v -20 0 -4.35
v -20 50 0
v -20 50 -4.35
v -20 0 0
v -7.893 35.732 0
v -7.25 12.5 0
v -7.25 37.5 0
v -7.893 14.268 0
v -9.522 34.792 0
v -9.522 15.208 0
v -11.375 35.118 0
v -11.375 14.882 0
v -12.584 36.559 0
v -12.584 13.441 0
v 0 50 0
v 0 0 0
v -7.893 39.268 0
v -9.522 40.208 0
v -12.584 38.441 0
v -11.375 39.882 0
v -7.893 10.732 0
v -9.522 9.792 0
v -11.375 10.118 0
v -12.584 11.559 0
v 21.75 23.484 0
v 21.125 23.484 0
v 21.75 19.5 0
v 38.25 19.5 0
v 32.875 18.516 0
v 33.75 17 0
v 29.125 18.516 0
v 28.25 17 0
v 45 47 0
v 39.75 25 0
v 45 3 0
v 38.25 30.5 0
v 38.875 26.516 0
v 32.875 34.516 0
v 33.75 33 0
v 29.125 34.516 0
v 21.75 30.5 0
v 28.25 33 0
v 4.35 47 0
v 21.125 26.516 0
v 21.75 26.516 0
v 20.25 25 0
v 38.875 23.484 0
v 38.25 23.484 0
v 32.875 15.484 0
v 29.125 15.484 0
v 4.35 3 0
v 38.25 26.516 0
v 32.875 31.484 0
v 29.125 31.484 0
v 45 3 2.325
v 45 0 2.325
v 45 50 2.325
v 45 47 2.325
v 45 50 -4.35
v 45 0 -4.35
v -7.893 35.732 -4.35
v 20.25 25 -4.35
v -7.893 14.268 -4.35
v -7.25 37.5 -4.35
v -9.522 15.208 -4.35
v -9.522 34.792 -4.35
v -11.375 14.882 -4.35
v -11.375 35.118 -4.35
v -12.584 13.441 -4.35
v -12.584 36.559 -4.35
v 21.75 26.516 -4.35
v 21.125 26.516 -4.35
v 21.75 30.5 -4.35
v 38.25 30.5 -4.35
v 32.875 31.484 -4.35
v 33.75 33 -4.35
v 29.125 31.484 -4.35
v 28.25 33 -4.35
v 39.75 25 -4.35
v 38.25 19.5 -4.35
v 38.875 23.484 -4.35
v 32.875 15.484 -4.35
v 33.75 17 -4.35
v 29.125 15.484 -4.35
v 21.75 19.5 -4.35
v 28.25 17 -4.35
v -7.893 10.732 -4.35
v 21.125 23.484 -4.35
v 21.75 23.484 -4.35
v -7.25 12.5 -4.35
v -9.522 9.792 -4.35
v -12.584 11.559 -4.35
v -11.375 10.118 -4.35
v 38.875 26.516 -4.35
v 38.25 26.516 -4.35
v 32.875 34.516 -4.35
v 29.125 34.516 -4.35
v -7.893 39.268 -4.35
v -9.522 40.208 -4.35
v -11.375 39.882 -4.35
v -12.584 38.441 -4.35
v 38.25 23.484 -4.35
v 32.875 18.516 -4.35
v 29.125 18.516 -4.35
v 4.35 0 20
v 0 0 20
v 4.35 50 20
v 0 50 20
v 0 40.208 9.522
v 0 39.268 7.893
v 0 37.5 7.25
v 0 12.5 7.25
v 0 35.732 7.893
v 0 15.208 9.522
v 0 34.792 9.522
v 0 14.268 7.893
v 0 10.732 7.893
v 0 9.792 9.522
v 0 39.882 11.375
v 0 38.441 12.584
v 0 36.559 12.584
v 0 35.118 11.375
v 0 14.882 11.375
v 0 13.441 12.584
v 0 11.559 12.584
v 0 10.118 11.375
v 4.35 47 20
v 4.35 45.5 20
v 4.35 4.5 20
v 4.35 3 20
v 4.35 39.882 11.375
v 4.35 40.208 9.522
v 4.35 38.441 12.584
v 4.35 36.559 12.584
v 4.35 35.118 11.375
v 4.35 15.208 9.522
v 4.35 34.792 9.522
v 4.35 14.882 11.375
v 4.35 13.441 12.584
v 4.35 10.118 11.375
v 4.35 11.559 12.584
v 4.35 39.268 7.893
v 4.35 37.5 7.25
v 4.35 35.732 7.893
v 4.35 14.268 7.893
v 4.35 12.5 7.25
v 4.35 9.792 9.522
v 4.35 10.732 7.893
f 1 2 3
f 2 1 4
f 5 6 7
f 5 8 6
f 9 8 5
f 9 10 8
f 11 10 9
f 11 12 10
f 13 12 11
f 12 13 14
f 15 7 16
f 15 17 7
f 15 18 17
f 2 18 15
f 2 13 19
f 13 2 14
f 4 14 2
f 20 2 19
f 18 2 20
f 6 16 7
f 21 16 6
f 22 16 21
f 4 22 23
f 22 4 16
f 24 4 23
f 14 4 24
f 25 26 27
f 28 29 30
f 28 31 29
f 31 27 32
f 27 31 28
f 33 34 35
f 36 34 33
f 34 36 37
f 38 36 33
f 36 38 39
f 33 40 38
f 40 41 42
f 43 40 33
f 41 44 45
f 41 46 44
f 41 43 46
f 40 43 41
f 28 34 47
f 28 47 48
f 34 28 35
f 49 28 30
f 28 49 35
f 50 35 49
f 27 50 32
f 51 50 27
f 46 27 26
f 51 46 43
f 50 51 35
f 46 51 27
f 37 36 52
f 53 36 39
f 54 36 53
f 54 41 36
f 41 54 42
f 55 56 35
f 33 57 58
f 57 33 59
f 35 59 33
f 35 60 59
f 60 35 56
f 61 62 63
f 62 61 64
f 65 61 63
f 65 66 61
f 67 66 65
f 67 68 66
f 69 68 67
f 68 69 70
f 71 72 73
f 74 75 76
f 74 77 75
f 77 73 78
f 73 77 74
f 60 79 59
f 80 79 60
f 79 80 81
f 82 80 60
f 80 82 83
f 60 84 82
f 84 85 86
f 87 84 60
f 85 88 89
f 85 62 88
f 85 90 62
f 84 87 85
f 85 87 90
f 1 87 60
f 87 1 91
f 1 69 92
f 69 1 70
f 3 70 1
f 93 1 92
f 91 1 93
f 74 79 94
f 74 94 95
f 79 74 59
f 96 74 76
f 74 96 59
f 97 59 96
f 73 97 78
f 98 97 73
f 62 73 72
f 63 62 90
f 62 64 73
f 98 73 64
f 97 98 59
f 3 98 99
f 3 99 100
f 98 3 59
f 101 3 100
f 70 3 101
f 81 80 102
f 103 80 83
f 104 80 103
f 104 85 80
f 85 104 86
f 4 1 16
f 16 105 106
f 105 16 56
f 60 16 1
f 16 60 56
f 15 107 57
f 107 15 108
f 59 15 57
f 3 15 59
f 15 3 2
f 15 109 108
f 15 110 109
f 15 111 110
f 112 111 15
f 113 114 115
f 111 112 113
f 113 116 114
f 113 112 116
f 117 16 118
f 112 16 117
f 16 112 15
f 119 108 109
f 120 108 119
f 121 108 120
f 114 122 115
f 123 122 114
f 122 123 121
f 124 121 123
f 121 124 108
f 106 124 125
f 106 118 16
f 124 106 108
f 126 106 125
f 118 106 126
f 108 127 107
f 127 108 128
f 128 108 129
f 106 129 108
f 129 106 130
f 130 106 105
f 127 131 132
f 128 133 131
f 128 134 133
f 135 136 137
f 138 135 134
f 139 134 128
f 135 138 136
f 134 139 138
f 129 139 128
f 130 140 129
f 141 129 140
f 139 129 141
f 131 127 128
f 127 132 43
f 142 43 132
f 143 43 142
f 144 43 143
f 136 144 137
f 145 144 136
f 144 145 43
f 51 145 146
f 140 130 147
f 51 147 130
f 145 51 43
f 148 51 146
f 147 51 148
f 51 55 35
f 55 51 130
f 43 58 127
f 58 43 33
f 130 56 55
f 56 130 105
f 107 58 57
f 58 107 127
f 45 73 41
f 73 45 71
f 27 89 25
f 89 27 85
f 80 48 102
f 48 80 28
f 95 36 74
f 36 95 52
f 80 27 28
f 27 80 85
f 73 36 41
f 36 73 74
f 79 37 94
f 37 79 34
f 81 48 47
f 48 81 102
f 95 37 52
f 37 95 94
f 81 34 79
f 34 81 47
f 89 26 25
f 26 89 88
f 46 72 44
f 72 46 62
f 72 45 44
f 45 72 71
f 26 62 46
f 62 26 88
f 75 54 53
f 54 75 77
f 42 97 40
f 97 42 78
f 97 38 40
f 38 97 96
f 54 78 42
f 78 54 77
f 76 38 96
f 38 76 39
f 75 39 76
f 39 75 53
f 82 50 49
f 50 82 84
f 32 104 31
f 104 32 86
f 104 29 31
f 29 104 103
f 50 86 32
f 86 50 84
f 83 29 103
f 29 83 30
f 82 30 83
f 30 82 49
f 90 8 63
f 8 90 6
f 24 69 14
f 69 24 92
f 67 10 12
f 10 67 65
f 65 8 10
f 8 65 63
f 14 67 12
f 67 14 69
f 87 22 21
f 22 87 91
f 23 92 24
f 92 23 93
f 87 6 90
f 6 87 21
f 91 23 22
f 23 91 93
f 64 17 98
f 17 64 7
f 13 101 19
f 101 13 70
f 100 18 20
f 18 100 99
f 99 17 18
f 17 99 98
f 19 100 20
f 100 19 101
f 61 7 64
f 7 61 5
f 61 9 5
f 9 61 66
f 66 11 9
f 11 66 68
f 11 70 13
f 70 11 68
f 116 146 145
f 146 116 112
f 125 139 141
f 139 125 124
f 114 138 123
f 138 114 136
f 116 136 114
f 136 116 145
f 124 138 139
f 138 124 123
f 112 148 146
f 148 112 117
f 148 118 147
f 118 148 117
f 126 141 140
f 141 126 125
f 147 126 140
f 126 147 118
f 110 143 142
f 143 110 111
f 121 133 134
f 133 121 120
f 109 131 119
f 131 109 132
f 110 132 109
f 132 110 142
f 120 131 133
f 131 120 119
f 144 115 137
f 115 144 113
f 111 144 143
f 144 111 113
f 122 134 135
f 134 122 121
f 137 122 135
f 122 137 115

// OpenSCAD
// extrusion 20X20
ex_h = 20;

// screw M3
screw_d = 5+0.5;
screw_m3 = 3+0.5;

// Support Rod 10.2mm
rod_d = 10.2+0.8;

// support
sup_base_h = 4.35;
sup_base_w = 50;
sup_base_l = 45;
sup_rod_h = 30;
sup_rod_d = 20+sup_base_h;
sup_rod_w = sup_base_w/3;
sup_hole_w = 2;
renfort_w = 3;

// trou pour vis
distance_vis = 8;

difference(){
    union(){
    translate([-ex_h,0,-sup_base_h])
    cube([sup_base_l+ex_h,sup_base_w,sup_base_h]);

    translate([])
    cube([sup_base_h,sup_base_w,ex_h]);

    cube([sup_base_l,renfort_w,ex_h]);

    translate([0,sup_base_w-renfort_w,0])
    cube([sup_base_l,renfort_w,ex_h]);
    }
    // diff
    
    // Coupe pour le triangle
    translate([sup_base_h,-0.5*renfort_w,ex_h]) rotate([0,23.5,0])
    cube([sup_base_l+ex_h,renfort_w*2,ex_h]);

    translate([sup_base_h,sup_base_w-1.5*renfort_w,ex_h]) rotate([0,23.5,0])
    cube([sup_base_l+ex_h,renfort_w*2,ex_h]);
    
    // Trou pour la rod
    translate([sup_rod_h,sup_base_w/2,0])
    cube([1.5*rod_d,rod_d,3*sup_base_h],true);

    
    // Trous pour vis (pour lead screw)
    translate([sup_rod_h+distance_vis,sup_base_w/2,-1.5*sup_base_h])
    cylinder(2*sup_base_h,d=screw_m3);
    
    translate([sup_rod_h-distance_vis,sup_base_w/2,-1.5*sup_base_h])
    cylinder(2*sup_base_h,d=screw_m3);
    
    translate([sup_rod_h,sup_base_w/2+distance_vis,-1.5*sup_base_h])
    cylinder(2*sup_base_h,d=screw_m3);
    translate([sup_rod_h+1,sup_base_w/2+distance_vis,-1.5*sup_base_h])
    cylinder(2*sup_base_h,d=screw_m3);
    translate([sup_rod_h+2,sup_base_w/2+distance_vis,-1.5*sup_base_h])
    cylinder(2*sup_base_h,d=screw_m3);
    
    translate([sup_rod_h,sup_base_w/2-distance_vis,-1.5*sup_base_h])
    cylinder(2*sup_base_h,d=screw_m3);
    translate([sup_rod_h+1,sup_base_w/2-distance_vis,-1.5*sup_base_h])
    cylinder(2*sup_base_h,d=screw_m3);
    translate([sup_rod_h+2,sup_base_w/2-distance_vis,-1.5*sup_base_h])
    cylinder(2*sup_base_h,d=screw_m3);
    
    // Trous pour extrusion
    translate([-ex_h/2,0.25*sup_base_w,-1.5*sup_base_h])
    cylinder(2*sup_base_h,d=screw_d);
    
    translate([-ex_h/2,0.75*sup_base_w,-1.5*sup_base_h])
    cylinder(2*sup_base_h,d=screw_d);
    
    translate([-0.25*sup_base_h,0.25*sup_base_w,ex_h/2]) rotate([0,90,0])
    cylinder(2*sup_base_h,d=screw_d);
    
    translate([-0.25*sup_base_h,0.75*sup_base_w,ex_h/2]) rotate([0,90,0])
    cylinder(2*sup_base_h,d=screw_d);

}
